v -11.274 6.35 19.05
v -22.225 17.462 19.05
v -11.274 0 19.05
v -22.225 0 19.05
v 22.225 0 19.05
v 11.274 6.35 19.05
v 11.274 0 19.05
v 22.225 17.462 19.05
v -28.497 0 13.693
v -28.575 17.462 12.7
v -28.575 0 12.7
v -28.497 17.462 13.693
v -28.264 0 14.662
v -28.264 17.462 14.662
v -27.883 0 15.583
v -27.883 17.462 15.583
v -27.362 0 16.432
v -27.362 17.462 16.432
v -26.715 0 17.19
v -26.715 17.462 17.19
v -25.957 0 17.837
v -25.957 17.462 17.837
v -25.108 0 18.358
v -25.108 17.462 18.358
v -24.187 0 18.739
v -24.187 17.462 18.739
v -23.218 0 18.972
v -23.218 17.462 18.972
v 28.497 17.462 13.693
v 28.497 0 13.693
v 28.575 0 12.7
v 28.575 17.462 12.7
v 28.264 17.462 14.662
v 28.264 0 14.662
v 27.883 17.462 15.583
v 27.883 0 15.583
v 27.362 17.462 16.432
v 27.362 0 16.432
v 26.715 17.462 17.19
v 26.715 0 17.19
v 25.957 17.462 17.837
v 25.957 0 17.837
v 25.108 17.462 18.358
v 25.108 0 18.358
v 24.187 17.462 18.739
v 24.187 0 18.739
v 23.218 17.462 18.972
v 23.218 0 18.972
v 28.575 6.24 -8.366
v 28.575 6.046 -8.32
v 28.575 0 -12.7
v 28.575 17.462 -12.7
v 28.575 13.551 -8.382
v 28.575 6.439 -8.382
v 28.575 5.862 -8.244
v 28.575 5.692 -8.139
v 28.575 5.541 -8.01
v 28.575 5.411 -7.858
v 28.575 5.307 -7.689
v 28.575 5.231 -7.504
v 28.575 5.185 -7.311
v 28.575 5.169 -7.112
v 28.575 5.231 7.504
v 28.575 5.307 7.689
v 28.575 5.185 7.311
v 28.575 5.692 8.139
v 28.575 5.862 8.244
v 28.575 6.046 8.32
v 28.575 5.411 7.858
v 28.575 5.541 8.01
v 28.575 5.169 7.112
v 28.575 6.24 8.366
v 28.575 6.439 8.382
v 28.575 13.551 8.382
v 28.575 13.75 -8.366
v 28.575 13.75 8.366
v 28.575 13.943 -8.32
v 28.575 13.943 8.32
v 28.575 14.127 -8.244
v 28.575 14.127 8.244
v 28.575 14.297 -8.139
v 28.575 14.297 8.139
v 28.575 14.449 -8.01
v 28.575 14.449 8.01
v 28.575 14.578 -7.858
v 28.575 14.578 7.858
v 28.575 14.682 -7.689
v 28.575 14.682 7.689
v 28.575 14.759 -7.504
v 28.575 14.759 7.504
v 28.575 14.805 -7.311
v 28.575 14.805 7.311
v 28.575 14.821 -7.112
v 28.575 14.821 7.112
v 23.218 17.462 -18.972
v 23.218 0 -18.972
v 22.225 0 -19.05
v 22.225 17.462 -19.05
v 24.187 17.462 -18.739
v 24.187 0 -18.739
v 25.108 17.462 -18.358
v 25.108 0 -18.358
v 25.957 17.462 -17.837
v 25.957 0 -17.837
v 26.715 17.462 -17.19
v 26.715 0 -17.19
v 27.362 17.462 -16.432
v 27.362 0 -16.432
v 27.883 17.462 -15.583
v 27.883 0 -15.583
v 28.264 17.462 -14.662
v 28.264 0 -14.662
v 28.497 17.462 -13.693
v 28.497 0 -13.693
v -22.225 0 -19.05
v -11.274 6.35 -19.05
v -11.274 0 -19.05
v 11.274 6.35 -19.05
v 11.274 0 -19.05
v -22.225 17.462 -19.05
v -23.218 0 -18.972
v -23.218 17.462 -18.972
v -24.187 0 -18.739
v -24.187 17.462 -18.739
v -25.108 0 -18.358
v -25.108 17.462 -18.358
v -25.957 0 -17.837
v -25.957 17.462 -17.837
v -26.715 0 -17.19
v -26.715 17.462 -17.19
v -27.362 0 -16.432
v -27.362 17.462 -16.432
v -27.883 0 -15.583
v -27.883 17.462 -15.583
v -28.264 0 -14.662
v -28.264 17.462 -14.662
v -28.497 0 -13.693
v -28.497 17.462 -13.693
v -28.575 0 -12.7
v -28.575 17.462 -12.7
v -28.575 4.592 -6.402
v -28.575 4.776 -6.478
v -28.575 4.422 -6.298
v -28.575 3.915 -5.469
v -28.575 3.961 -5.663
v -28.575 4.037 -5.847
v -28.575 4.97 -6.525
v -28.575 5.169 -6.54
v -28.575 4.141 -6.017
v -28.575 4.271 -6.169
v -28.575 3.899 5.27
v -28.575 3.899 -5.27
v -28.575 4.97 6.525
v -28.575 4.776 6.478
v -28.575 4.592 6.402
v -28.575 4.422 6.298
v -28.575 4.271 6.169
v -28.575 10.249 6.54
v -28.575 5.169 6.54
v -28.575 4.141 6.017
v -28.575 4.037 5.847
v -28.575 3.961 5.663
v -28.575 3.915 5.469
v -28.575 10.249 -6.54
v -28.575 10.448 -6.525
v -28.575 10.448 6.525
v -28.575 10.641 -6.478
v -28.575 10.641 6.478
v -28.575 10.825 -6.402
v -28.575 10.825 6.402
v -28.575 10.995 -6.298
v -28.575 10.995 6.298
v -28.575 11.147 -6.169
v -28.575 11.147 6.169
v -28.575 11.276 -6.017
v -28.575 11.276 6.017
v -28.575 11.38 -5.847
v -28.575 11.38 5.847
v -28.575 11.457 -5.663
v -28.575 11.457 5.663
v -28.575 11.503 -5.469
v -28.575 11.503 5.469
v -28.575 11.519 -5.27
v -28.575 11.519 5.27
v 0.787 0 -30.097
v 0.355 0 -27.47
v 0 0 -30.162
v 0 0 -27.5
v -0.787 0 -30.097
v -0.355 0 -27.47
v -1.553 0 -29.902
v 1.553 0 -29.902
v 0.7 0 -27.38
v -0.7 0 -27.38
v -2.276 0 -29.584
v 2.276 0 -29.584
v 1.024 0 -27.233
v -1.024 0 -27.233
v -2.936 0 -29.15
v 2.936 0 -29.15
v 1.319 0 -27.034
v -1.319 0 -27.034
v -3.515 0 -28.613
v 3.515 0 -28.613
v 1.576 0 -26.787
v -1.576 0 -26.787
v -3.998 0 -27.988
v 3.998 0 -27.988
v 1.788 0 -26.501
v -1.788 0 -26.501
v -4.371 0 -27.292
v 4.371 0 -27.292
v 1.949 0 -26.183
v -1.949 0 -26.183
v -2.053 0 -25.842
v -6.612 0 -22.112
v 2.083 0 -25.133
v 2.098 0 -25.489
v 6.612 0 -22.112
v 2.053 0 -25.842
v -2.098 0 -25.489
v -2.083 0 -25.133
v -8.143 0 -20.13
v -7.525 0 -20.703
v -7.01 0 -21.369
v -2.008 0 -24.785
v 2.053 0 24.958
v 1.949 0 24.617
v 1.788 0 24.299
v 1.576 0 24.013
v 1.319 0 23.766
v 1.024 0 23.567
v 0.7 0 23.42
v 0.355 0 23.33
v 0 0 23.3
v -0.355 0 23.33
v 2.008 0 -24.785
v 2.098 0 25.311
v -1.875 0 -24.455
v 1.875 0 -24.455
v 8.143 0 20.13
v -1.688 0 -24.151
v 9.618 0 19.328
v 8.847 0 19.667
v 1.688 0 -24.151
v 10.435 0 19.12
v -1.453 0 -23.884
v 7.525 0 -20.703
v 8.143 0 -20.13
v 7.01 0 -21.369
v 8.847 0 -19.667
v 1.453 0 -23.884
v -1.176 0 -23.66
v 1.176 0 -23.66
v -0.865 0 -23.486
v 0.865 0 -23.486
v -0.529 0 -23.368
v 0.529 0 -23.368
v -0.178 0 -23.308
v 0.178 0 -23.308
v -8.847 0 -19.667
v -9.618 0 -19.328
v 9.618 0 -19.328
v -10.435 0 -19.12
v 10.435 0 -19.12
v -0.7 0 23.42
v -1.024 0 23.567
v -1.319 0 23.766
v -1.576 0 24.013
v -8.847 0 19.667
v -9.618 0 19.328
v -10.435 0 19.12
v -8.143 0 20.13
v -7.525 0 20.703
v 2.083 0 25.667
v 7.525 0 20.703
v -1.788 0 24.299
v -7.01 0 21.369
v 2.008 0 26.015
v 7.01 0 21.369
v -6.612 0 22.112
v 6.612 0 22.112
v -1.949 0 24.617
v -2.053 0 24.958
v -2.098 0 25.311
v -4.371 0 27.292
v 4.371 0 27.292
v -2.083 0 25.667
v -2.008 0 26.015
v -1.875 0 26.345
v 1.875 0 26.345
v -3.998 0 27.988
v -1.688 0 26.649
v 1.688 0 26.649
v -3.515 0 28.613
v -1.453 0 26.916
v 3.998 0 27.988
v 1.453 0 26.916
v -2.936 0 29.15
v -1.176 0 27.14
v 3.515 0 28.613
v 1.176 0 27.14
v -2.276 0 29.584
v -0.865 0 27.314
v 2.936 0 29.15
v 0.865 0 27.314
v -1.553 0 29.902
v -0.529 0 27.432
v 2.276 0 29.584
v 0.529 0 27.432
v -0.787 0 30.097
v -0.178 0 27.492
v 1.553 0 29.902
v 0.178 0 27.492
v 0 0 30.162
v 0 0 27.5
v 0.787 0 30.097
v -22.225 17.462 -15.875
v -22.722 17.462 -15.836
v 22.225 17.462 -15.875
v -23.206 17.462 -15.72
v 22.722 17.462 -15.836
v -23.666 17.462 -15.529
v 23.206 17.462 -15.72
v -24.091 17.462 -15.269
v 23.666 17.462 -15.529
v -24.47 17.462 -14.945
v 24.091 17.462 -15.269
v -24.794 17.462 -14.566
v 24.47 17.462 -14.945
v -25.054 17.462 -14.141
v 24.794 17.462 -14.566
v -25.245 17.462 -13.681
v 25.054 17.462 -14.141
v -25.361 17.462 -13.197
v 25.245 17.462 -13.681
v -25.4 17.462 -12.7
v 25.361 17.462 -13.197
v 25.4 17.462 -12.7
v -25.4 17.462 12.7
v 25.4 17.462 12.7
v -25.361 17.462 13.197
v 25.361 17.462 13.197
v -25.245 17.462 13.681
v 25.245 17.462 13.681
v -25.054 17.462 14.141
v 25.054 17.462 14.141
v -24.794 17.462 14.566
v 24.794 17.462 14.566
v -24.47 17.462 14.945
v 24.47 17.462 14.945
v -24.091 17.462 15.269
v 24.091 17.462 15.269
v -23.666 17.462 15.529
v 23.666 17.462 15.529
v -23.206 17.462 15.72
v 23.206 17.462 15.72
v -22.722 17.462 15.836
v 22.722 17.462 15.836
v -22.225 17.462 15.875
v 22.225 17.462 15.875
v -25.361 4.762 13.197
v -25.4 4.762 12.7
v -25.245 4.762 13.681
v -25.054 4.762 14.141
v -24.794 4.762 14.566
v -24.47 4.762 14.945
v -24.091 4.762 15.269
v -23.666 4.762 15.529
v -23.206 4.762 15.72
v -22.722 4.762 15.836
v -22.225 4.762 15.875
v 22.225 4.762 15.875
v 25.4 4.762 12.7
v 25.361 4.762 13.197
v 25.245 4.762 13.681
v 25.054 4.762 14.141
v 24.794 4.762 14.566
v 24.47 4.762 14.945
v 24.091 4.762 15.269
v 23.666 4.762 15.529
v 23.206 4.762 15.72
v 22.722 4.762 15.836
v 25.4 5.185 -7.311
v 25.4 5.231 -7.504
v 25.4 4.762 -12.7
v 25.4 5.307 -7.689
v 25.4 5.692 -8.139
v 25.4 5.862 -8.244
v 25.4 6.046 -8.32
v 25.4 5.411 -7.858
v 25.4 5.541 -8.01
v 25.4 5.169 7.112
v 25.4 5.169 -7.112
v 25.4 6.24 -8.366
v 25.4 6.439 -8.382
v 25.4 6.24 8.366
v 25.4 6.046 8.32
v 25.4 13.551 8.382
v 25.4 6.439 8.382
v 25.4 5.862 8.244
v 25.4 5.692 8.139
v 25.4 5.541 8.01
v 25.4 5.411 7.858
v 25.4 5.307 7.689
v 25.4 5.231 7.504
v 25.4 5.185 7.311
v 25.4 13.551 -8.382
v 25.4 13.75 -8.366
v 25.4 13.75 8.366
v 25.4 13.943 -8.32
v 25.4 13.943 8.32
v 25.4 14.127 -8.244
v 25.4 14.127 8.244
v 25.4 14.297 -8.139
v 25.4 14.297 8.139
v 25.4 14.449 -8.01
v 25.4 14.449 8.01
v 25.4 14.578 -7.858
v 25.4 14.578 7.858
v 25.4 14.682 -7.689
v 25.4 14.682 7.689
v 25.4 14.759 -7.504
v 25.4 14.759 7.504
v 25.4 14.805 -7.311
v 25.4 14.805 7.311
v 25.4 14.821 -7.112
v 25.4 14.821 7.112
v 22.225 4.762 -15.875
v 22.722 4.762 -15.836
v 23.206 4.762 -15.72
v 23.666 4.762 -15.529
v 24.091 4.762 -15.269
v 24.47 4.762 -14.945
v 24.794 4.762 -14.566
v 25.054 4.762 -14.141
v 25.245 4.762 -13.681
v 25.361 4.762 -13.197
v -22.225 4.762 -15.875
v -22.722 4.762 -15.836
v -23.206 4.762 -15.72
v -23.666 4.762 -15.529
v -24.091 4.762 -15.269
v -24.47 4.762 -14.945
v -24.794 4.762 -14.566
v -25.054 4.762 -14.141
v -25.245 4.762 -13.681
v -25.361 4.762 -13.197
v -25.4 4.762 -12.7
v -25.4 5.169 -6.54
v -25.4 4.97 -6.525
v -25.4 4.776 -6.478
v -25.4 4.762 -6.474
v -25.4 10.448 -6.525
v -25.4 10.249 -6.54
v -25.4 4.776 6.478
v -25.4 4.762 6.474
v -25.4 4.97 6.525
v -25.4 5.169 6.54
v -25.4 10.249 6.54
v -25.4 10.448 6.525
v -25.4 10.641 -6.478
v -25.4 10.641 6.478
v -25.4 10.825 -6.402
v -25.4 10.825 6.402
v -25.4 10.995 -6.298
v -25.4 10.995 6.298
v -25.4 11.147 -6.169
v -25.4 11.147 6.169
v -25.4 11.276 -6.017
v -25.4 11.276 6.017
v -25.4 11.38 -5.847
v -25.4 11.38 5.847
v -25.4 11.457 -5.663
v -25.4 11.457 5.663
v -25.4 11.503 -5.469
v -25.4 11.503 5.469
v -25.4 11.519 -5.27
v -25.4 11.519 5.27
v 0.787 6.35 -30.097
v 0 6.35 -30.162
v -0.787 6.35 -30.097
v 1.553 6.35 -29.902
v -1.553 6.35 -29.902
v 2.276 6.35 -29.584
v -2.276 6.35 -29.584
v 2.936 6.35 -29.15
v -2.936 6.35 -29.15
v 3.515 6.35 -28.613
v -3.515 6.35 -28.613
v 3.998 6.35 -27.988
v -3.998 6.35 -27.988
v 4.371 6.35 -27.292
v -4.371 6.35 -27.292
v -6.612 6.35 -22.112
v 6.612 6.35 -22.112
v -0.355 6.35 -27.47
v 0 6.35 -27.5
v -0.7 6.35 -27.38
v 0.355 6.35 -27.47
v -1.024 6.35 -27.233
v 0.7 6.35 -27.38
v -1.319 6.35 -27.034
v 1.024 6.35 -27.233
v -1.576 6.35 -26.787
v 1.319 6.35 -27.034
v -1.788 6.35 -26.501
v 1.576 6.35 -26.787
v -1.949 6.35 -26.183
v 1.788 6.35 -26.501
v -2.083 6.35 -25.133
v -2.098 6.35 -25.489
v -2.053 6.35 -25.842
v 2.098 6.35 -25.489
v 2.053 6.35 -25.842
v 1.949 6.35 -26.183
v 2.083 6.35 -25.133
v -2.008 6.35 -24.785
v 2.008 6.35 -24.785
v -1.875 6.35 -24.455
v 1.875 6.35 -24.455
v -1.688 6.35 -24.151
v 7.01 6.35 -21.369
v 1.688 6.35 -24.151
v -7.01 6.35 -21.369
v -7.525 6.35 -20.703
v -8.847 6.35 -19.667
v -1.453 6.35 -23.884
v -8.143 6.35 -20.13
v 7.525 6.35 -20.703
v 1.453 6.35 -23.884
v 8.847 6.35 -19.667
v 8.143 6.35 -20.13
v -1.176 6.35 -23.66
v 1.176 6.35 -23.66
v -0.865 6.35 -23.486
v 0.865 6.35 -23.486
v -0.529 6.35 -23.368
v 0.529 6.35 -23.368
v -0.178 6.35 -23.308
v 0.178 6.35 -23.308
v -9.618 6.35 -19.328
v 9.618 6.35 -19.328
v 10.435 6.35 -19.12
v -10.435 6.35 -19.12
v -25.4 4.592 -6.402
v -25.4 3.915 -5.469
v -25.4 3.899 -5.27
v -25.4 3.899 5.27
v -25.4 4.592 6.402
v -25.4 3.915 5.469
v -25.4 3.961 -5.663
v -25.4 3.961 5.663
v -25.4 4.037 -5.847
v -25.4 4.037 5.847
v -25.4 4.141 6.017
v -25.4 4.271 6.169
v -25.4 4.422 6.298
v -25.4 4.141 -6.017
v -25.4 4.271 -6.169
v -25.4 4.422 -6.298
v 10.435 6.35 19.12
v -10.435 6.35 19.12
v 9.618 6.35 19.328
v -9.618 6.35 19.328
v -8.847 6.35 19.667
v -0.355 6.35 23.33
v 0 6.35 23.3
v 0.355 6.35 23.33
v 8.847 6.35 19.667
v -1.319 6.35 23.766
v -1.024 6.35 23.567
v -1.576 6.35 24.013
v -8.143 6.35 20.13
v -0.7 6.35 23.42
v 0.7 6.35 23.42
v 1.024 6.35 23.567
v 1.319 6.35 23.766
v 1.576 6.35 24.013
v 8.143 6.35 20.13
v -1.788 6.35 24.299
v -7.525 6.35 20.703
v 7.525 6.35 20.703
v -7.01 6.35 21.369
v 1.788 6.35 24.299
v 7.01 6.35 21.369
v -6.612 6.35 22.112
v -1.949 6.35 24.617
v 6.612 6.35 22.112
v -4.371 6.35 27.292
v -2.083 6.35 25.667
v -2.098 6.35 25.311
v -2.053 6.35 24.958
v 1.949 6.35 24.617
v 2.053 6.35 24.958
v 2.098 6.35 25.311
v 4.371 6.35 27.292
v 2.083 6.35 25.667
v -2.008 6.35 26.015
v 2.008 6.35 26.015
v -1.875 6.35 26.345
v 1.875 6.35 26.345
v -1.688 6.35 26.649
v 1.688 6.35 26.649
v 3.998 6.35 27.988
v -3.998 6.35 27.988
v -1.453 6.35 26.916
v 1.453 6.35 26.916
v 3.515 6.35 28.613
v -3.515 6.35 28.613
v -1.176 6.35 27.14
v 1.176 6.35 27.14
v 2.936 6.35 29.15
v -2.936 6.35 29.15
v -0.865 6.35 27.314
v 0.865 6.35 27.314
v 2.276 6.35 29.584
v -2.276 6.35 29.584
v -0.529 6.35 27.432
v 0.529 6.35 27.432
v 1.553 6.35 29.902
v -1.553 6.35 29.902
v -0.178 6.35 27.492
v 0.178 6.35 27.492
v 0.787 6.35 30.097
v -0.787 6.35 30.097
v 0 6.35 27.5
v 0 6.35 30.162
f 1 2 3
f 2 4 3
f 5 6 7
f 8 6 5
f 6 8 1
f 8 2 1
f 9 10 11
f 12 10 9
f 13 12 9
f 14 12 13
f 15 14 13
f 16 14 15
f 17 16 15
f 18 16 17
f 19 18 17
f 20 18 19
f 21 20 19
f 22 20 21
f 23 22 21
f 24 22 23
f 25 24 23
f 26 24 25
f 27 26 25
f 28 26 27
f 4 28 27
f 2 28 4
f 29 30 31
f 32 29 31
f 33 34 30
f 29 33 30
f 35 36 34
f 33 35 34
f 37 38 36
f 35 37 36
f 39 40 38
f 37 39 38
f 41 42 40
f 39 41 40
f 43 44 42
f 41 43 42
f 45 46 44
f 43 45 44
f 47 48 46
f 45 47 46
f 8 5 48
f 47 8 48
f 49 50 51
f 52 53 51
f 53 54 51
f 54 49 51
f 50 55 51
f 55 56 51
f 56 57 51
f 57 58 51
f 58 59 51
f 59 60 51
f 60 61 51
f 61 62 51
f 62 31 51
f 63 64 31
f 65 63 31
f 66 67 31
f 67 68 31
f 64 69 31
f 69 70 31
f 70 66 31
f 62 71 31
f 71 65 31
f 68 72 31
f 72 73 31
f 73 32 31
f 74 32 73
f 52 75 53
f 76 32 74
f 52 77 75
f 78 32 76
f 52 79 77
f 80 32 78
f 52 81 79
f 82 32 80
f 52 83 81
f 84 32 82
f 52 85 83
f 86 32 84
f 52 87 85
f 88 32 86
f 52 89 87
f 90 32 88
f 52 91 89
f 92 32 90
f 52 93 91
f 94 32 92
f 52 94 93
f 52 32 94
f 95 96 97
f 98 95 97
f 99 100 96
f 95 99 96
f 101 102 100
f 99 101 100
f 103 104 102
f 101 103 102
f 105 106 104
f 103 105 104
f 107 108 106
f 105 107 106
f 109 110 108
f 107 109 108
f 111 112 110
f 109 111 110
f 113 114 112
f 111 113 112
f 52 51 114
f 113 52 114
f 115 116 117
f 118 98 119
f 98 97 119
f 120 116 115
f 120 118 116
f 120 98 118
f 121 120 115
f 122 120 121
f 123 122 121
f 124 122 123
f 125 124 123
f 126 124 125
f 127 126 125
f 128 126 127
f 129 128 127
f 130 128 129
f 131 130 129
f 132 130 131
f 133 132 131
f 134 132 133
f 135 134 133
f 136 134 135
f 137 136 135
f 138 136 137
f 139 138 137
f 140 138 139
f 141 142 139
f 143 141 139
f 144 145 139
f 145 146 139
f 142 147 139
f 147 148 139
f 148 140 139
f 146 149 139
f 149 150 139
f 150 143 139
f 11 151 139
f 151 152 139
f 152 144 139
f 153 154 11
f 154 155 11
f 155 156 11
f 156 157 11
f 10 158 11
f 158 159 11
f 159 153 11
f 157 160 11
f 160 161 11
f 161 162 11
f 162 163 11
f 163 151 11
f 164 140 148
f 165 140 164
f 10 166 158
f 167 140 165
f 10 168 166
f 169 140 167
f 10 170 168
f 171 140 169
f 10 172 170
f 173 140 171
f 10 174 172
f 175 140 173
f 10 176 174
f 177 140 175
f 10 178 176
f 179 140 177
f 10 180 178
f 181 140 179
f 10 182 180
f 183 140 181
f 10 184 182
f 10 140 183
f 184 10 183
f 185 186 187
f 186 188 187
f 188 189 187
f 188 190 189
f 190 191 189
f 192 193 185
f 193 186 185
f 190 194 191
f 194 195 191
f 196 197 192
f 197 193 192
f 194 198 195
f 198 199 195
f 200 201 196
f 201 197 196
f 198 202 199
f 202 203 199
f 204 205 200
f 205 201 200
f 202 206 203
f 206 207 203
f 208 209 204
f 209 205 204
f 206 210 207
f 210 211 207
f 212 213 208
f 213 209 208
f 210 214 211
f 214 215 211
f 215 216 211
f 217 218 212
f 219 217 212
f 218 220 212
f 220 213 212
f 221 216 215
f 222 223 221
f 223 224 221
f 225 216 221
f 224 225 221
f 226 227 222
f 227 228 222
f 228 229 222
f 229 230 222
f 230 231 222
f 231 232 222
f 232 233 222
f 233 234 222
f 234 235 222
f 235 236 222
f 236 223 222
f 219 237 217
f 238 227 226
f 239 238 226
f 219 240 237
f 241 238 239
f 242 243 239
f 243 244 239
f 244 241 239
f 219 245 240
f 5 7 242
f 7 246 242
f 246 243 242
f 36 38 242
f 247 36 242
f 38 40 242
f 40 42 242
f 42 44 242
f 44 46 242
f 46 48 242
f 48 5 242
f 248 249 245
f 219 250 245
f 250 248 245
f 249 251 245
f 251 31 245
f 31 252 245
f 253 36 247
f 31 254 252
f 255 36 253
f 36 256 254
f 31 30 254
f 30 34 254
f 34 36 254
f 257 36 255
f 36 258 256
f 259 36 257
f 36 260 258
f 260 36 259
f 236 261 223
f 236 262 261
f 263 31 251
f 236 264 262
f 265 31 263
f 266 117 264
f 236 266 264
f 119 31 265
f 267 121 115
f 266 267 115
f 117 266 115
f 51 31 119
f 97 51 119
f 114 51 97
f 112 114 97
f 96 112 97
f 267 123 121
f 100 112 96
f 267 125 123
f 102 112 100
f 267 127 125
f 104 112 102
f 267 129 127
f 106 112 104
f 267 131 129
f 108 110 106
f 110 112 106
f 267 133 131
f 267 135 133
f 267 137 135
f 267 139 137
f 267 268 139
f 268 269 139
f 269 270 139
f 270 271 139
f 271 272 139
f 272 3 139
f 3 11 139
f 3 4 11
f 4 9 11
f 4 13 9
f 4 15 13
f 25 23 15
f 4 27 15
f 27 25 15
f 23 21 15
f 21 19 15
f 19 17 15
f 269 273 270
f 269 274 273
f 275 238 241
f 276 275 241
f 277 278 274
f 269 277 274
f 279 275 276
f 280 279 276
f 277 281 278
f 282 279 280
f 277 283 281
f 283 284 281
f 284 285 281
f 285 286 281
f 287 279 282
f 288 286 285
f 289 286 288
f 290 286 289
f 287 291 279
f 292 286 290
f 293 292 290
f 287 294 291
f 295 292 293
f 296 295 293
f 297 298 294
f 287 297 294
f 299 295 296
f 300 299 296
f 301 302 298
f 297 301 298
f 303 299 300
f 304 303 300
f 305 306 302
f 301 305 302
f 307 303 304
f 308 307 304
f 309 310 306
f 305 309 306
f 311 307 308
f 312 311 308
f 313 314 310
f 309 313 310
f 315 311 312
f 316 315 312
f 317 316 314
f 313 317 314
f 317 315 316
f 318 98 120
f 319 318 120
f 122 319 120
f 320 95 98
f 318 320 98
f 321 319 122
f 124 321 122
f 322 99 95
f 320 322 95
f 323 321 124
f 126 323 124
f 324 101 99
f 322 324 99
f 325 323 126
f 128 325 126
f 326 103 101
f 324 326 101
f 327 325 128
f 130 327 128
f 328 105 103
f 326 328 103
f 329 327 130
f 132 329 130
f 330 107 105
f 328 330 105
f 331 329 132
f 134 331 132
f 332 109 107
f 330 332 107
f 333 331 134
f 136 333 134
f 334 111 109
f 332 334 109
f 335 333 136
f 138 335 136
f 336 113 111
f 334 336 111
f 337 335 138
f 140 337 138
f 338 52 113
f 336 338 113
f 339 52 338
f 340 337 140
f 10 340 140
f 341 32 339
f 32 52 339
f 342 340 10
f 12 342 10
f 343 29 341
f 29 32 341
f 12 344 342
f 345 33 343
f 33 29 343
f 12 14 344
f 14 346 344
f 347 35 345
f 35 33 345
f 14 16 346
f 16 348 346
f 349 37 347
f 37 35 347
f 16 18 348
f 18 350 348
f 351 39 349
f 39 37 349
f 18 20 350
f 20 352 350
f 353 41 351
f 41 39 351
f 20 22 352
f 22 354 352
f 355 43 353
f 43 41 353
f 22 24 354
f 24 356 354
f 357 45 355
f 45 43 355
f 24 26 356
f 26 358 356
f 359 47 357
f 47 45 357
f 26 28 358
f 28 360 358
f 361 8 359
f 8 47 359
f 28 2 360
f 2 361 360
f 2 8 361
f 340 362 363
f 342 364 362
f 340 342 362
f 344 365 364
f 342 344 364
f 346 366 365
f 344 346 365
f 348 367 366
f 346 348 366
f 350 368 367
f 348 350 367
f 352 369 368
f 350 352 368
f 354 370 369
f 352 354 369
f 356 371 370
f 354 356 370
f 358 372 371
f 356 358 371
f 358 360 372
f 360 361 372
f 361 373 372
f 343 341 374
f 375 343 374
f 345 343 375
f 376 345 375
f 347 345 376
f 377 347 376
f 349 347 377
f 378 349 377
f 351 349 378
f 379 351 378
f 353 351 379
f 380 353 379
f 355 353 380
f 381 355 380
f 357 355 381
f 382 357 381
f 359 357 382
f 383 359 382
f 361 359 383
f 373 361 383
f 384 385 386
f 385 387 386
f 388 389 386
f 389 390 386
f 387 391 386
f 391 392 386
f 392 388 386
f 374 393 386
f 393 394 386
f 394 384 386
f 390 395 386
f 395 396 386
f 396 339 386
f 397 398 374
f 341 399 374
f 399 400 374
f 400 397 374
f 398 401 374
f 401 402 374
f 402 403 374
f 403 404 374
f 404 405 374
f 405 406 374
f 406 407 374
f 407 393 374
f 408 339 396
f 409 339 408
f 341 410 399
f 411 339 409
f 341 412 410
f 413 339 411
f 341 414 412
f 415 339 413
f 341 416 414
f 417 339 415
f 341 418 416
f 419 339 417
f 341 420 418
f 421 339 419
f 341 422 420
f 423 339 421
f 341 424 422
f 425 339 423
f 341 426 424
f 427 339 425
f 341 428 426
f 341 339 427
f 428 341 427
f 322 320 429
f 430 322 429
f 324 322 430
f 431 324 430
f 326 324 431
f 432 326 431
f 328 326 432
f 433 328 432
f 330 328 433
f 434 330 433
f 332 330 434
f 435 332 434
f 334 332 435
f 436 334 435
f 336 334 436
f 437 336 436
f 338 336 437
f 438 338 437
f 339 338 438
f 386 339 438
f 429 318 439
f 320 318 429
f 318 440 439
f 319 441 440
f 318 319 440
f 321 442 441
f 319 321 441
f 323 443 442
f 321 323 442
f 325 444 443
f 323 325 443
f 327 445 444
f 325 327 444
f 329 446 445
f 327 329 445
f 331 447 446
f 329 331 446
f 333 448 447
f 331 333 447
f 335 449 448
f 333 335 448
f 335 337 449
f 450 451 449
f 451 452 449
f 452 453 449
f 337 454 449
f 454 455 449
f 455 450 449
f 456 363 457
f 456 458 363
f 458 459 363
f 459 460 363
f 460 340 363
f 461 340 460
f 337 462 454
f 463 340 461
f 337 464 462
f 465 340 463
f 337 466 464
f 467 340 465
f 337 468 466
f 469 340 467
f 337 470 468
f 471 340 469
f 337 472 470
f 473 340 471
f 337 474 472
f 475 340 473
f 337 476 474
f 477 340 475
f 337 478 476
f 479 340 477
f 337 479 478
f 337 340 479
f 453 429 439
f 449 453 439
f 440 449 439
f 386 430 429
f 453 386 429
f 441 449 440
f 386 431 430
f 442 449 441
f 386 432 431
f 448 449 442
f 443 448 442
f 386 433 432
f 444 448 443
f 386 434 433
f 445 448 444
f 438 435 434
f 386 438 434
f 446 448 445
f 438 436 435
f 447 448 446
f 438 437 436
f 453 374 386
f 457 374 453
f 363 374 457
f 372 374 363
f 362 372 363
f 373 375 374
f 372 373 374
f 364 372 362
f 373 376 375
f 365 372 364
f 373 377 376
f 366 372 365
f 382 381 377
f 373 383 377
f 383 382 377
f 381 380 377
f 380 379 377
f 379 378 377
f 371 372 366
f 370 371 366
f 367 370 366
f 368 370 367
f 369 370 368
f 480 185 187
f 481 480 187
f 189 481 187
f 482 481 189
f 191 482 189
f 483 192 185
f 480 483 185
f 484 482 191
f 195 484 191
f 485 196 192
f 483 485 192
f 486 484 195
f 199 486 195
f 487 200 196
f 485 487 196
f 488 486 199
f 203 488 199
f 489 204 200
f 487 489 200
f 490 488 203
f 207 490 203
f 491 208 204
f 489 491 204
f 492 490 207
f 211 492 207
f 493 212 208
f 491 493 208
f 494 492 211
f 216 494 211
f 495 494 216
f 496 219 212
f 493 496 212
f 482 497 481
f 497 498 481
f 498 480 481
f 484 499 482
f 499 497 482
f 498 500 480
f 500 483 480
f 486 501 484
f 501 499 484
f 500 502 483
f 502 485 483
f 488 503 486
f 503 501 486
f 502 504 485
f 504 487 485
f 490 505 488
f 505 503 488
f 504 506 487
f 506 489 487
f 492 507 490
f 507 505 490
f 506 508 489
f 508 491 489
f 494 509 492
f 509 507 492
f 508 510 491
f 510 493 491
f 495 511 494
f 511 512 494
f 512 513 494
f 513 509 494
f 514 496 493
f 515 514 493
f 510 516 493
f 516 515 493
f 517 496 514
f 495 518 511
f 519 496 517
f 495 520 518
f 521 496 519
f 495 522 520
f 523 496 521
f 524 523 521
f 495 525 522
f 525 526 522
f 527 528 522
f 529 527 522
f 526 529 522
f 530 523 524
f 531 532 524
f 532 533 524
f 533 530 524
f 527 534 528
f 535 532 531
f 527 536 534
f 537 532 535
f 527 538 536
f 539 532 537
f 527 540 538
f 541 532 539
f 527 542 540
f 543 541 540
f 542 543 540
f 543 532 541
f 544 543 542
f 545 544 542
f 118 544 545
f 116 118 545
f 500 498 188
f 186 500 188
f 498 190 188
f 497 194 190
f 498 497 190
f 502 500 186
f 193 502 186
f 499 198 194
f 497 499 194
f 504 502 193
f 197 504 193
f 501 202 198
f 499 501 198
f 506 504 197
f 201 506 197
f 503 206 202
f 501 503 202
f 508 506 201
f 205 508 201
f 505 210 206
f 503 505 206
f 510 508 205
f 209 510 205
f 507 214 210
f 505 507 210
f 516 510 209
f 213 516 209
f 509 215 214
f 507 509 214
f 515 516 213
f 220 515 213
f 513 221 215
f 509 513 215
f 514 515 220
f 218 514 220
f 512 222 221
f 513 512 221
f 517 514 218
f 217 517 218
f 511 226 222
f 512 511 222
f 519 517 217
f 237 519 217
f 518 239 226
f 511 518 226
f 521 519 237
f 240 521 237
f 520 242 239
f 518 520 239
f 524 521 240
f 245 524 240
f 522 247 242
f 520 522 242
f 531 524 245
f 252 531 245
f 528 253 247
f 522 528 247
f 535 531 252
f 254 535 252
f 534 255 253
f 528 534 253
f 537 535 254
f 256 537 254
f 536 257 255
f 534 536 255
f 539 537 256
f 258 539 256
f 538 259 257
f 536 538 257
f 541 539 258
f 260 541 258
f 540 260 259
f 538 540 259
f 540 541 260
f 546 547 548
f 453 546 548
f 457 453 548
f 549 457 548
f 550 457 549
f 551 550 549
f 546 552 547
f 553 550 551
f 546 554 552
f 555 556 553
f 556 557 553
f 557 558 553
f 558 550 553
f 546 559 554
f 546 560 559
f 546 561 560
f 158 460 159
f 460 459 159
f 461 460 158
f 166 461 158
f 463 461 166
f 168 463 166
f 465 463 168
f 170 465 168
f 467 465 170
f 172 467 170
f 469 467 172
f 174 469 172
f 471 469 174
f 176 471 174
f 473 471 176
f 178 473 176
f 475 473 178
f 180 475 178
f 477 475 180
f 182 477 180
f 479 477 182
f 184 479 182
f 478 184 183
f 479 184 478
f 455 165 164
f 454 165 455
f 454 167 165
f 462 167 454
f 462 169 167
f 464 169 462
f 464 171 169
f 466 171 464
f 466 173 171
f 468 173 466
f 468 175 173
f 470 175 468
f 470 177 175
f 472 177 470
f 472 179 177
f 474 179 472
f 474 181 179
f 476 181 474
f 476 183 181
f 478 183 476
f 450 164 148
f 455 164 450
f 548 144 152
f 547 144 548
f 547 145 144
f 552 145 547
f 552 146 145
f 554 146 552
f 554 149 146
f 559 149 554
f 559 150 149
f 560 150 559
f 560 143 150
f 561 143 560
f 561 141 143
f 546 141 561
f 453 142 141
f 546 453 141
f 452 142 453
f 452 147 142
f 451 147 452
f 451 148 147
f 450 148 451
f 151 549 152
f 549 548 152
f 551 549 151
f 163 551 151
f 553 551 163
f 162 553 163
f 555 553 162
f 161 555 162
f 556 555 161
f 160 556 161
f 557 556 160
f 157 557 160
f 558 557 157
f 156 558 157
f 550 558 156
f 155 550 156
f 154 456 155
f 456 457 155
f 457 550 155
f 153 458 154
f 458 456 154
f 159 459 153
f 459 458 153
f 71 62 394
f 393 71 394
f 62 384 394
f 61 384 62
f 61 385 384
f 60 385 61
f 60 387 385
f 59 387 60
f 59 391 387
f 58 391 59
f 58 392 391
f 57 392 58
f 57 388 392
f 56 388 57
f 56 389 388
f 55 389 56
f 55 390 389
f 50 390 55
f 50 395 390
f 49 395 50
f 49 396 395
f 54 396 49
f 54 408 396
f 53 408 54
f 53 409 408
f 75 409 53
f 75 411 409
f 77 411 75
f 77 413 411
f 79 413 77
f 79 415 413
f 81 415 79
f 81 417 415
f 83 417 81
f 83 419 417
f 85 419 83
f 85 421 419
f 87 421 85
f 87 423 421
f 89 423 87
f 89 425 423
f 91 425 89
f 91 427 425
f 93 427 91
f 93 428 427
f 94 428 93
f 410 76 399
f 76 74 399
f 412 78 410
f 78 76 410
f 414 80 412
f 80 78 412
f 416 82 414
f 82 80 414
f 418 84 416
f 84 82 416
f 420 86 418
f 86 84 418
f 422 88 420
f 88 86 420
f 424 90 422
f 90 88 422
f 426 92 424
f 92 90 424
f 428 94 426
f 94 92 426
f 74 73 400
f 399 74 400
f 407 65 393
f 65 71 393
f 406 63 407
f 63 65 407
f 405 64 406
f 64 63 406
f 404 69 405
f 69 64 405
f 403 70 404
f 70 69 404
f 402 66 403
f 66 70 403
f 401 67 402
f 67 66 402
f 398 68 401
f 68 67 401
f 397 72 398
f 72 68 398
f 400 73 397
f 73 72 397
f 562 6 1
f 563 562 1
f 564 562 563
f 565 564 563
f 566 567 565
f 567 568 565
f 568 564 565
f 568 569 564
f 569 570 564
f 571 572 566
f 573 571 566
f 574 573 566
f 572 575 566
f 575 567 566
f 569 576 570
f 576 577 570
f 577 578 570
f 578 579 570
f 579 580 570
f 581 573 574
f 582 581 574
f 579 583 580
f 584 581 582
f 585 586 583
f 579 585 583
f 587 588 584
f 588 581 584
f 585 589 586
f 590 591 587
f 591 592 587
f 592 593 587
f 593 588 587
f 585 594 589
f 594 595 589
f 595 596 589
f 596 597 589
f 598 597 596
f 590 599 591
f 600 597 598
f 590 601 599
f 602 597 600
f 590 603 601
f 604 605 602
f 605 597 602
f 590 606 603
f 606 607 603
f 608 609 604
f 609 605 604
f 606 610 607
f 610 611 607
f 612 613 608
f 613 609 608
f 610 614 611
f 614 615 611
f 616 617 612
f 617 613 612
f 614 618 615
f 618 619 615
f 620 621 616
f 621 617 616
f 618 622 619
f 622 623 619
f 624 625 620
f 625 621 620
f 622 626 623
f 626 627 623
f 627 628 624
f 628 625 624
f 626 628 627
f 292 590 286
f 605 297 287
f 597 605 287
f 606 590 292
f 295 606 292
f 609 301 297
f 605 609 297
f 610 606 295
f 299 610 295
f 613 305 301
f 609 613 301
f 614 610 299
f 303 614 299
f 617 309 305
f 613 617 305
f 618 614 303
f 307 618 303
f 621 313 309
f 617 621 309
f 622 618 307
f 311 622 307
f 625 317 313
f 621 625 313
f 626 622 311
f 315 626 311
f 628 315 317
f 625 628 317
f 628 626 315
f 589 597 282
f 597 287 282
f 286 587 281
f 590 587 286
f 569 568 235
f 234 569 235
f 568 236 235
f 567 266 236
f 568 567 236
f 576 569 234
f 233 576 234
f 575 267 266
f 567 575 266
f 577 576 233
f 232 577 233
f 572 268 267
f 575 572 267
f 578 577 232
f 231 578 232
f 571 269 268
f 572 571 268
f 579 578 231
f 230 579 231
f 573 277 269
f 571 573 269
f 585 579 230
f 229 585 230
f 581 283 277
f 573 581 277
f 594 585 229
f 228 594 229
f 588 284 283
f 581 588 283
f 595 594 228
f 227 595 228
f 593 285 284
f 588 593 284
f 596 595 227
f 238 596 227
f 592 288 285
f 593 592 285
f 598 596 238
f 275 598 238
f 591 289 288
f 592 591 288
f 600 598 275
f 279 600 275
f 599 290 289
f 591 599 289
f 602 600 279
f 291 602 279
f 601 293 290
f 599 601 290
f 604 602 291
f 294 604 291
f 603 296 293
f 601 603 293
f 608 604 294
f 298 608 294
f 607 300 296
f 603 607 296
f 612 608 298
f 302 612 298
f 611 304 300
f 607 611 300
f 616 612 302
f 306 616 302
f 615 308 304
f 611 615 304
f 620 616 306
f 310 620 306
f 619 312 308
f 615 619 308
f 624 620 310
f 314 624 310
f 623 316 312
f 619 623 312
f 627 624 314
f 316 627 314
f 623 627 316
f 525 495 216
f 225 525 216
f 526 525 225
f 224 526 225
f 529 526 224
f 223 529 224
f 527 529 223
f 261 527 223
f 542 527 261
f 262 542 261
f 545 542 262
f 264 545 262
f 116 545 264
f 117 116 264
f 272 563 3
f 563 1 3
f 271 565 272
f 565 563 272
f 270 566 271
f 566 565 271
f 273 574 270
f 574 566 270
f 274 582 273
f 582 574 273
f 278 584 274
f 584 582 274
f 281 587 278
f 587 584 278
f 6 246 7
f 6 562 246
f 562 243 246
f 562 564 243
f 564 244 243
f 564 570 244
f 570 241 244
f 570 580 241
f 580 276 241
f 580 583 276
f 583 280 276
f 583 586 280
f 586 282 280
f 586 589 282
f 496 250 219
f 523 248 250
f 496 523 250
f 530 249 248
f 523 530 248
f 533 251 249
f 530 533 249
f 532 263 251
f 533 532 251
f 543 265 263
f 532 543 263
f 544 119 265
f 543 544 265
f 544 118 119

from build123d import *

# Parameters (mm, degrees)
BOSS_EXTRUDE1_DEPTH = 4.7625
BOSS_EXTRUDE2_DEPTH = 12.7
SKETCH6_R           = 2.1
BOSS_EXTRUDE3_DEPTH = 6.35
CUT_EXTRUDE1_DEPTH  = 3.175
CUT_EXTRUDE2_DEPTH  = 3.175
FILLET1_R           = 5.08


with BuildPart() as part:
    # Sketch1 → Boss-Extrude1 (new body)
    with BuildSketch(Plane(origin=(0, 0, 0), x_dir=(1, 0, 0), z_dir=(0, 1, 0))):
        with BuildLine():
            Line((-22.225, -19.05), (22.225, -19.05))
            ThreePointArc((22.225, -19.05), (26.715128061, -17.190128061), (28.575, -12.7))
            Line((28.575, -12.7), (28.575, 12.7))
            ThreePointArc((28.575, 12.7), (26.715128061, 17.190128061), (22.225, 19.05))
            Line((22.225, 19.05), (-22.225, 19.05))
            ThreePointArc((-22.225, 19.05), (-26.715128061, 17.190128061), (-28.575, 12.7))
            Line((-28.575, 12.7), (-28.575, -12.7))
            ThreePointArc((-28.575, -12.7), (-26.715128061, -17.190128061), (-22.225, -19.05))
        make_face()
    extrude(amount=BOSS_EXTRUDE1_DEPTH)

    # Sketch2 → Boss-Extrude2 (add)
    with BuildSketch(Plane(origin=(0, 4.7625, 0), x_dir=(1, 0, 0), z_dir=(0, 1, 0))):
        with BuildLine():
            Line((-22.225, -19.05), (22.225, -19.05))
            ThreePointArc((22.225, -19.05), (26.715128061, -17.190128061), (28.575, -12.7))
            Line((28.575, -12.7), (28.575, 12.7))
            ThreePointArc((28.575, 12.7), (26.715128061, 17.190128061), (22.225, 19.05))
            Line((22.225, 19.05), (-22.225, 19.05))
            ThreePointArc((-22.225, 19.05), (-26.715128061, 17.190128061), (-28.575, 12.7))
            Line((-28.575, 12.7), (-28.575, -12.7))
            ThreePointArc((-28.575, -12.7), (-26.715128061, -17.190128061), (-22.225, -19.05))
        make_face()
        with BuildLine():
            Line((-22.225, -15.875), (22.225, -15.875))
            ThreePointArc((22.225, -15.875), (24.47006403, -14.94506403), (25.4, -12.7))
            Line((25.4, -12.7), (25.4, 12.7))
            ThreePointArc((25.4, 12.7), (24.47006403, 14.94506403), (22.225, 15.875))
            Line((22.225, 15.875), (-22.225, 15.875))
            ThreePointArc((-22.225, 15.875), (-24.47006403, 14.94506403), (-25.4, 12.7))
            Line((-25.4, 12.7), (-25.4, -12.7))
            ThreePointArc((-25.4, -12.7), (-24.47006403, -14.94506403), (-22.225, -15.875))
        make_face(mode=Mode.SUBTRACT)
    extrude(amount=BOSS_EXTRUDE2_DEPTH)

    # Sketch6 → Boss-Extrude3 (add)
    with BuildSketch(Plane.XZ):
        with BuildLine():
            Line((4.370745694, -27.291557117), (7.9375, -19.05))
            Line((7.9375, -19.05), (-7.9375, -19.05))
            Line((-7.9375, -19.05), (-4.370745694, -27.291557117))
            ThreePointArc((-4.370745694, -27.291557117), (0, -30.1625), (4.370745694, -27.291557117))
        make_face()
        with Locations((0, -25.4)):
            Circle(SKETCH6_R, mode=Mode.SUBTRACT)
    boss_extrude3 = extrude(amount=-BOSS_EXTRUDE3_DEPTH)

    # Sketch4 → Cut-Extrude1 (cut)
    with BuildSketch(Plane.ZY.offset(28.575)):
        with BuildLine():
            Line((-5.2705, 3.8989), (5.2705, 3.8989))
            ThreePointArc((5.2705, 3.8989), (6.168525612, 4.270874388), (6.5405, 5.1689))
            Line((6.5405, 5.1689), (6.5405, 10.2489))
            ThreePointArc((6.5405, 10.2489), (6.168525612, 11.146925612), (5.2705, 11.5189))
            Line((5.2705, 11.5189), (-5.2705, 11.5189))
            ThreePointArc((-5.2705, 11.5189), (-6.168525612, 11.146925612), (-6.5405, 10.2489))
            Line((-6.5405, 10.2489), (-6.5405, 5.1689))
            ThreePointArc((-6.5405, 5.1689), (-6.168525612, 4.270874388), (-5.2705, 3.8989))
        make_face()
    extrude(amount=-CUT_EXTRUDE1_DEPTH, mode=Mode.SUBTRACT)

    # Sketch5 → Cut-Extrude2 (cut)
    with BuildSketch(Plane(origin=(28.575, 0, 0), x_dir=(0, 0, -1), z_dir=(1, 0, 0))):
        with BuildLine():
            Line((-7.112, 5.1689), (7.112, 5.1689))
            ThreePointArc((7.112, 5.1689), (8.010025612, 5.540874388), (8.382, 6.4389))
            Line((8.382, 6.4389), (8.382, 13.5509))
            ThreePointArc((8.382, 13.5509), (8.010025612, 14.448925612), (7.112, 14.8209))
            Line((7.112, 14.8209), (-7.112, 14.8209))
            ThreePointArc((-7.112, 14.8209), (-8.010025612, 14.448925612), (-8.382, 13.5509))
            Line((-8.382, 13.5509), (-8.382, 6.4389))
            ThreePointArc((-8.382, 6.4389), (-8.010025612, 5.540874388), (-7.112, 5.1689))
        make_face()
    extrude(amount=-CUT_EXTRUDE2_DEPTH, mode=Mode.SUBTRACT)

    # Mirror3: Boss-Extrude3 across plane
    add(boss_extrude3.mirror(Plane.XY))

    # Fillet1
    fillet1_edges = [part.edges().sort_by_distance(p)[0] for p in [
        (7.9375, 3.175, 19.05),
        (-7.9375, 3.175, 19.05),
        (-7.9375, 3.175, -19.05),
        (7.9375, 3.175, -19.05),
    ]]
    fillet(fillet1_edges, radius=FILLET1_R)


solid = part.part
